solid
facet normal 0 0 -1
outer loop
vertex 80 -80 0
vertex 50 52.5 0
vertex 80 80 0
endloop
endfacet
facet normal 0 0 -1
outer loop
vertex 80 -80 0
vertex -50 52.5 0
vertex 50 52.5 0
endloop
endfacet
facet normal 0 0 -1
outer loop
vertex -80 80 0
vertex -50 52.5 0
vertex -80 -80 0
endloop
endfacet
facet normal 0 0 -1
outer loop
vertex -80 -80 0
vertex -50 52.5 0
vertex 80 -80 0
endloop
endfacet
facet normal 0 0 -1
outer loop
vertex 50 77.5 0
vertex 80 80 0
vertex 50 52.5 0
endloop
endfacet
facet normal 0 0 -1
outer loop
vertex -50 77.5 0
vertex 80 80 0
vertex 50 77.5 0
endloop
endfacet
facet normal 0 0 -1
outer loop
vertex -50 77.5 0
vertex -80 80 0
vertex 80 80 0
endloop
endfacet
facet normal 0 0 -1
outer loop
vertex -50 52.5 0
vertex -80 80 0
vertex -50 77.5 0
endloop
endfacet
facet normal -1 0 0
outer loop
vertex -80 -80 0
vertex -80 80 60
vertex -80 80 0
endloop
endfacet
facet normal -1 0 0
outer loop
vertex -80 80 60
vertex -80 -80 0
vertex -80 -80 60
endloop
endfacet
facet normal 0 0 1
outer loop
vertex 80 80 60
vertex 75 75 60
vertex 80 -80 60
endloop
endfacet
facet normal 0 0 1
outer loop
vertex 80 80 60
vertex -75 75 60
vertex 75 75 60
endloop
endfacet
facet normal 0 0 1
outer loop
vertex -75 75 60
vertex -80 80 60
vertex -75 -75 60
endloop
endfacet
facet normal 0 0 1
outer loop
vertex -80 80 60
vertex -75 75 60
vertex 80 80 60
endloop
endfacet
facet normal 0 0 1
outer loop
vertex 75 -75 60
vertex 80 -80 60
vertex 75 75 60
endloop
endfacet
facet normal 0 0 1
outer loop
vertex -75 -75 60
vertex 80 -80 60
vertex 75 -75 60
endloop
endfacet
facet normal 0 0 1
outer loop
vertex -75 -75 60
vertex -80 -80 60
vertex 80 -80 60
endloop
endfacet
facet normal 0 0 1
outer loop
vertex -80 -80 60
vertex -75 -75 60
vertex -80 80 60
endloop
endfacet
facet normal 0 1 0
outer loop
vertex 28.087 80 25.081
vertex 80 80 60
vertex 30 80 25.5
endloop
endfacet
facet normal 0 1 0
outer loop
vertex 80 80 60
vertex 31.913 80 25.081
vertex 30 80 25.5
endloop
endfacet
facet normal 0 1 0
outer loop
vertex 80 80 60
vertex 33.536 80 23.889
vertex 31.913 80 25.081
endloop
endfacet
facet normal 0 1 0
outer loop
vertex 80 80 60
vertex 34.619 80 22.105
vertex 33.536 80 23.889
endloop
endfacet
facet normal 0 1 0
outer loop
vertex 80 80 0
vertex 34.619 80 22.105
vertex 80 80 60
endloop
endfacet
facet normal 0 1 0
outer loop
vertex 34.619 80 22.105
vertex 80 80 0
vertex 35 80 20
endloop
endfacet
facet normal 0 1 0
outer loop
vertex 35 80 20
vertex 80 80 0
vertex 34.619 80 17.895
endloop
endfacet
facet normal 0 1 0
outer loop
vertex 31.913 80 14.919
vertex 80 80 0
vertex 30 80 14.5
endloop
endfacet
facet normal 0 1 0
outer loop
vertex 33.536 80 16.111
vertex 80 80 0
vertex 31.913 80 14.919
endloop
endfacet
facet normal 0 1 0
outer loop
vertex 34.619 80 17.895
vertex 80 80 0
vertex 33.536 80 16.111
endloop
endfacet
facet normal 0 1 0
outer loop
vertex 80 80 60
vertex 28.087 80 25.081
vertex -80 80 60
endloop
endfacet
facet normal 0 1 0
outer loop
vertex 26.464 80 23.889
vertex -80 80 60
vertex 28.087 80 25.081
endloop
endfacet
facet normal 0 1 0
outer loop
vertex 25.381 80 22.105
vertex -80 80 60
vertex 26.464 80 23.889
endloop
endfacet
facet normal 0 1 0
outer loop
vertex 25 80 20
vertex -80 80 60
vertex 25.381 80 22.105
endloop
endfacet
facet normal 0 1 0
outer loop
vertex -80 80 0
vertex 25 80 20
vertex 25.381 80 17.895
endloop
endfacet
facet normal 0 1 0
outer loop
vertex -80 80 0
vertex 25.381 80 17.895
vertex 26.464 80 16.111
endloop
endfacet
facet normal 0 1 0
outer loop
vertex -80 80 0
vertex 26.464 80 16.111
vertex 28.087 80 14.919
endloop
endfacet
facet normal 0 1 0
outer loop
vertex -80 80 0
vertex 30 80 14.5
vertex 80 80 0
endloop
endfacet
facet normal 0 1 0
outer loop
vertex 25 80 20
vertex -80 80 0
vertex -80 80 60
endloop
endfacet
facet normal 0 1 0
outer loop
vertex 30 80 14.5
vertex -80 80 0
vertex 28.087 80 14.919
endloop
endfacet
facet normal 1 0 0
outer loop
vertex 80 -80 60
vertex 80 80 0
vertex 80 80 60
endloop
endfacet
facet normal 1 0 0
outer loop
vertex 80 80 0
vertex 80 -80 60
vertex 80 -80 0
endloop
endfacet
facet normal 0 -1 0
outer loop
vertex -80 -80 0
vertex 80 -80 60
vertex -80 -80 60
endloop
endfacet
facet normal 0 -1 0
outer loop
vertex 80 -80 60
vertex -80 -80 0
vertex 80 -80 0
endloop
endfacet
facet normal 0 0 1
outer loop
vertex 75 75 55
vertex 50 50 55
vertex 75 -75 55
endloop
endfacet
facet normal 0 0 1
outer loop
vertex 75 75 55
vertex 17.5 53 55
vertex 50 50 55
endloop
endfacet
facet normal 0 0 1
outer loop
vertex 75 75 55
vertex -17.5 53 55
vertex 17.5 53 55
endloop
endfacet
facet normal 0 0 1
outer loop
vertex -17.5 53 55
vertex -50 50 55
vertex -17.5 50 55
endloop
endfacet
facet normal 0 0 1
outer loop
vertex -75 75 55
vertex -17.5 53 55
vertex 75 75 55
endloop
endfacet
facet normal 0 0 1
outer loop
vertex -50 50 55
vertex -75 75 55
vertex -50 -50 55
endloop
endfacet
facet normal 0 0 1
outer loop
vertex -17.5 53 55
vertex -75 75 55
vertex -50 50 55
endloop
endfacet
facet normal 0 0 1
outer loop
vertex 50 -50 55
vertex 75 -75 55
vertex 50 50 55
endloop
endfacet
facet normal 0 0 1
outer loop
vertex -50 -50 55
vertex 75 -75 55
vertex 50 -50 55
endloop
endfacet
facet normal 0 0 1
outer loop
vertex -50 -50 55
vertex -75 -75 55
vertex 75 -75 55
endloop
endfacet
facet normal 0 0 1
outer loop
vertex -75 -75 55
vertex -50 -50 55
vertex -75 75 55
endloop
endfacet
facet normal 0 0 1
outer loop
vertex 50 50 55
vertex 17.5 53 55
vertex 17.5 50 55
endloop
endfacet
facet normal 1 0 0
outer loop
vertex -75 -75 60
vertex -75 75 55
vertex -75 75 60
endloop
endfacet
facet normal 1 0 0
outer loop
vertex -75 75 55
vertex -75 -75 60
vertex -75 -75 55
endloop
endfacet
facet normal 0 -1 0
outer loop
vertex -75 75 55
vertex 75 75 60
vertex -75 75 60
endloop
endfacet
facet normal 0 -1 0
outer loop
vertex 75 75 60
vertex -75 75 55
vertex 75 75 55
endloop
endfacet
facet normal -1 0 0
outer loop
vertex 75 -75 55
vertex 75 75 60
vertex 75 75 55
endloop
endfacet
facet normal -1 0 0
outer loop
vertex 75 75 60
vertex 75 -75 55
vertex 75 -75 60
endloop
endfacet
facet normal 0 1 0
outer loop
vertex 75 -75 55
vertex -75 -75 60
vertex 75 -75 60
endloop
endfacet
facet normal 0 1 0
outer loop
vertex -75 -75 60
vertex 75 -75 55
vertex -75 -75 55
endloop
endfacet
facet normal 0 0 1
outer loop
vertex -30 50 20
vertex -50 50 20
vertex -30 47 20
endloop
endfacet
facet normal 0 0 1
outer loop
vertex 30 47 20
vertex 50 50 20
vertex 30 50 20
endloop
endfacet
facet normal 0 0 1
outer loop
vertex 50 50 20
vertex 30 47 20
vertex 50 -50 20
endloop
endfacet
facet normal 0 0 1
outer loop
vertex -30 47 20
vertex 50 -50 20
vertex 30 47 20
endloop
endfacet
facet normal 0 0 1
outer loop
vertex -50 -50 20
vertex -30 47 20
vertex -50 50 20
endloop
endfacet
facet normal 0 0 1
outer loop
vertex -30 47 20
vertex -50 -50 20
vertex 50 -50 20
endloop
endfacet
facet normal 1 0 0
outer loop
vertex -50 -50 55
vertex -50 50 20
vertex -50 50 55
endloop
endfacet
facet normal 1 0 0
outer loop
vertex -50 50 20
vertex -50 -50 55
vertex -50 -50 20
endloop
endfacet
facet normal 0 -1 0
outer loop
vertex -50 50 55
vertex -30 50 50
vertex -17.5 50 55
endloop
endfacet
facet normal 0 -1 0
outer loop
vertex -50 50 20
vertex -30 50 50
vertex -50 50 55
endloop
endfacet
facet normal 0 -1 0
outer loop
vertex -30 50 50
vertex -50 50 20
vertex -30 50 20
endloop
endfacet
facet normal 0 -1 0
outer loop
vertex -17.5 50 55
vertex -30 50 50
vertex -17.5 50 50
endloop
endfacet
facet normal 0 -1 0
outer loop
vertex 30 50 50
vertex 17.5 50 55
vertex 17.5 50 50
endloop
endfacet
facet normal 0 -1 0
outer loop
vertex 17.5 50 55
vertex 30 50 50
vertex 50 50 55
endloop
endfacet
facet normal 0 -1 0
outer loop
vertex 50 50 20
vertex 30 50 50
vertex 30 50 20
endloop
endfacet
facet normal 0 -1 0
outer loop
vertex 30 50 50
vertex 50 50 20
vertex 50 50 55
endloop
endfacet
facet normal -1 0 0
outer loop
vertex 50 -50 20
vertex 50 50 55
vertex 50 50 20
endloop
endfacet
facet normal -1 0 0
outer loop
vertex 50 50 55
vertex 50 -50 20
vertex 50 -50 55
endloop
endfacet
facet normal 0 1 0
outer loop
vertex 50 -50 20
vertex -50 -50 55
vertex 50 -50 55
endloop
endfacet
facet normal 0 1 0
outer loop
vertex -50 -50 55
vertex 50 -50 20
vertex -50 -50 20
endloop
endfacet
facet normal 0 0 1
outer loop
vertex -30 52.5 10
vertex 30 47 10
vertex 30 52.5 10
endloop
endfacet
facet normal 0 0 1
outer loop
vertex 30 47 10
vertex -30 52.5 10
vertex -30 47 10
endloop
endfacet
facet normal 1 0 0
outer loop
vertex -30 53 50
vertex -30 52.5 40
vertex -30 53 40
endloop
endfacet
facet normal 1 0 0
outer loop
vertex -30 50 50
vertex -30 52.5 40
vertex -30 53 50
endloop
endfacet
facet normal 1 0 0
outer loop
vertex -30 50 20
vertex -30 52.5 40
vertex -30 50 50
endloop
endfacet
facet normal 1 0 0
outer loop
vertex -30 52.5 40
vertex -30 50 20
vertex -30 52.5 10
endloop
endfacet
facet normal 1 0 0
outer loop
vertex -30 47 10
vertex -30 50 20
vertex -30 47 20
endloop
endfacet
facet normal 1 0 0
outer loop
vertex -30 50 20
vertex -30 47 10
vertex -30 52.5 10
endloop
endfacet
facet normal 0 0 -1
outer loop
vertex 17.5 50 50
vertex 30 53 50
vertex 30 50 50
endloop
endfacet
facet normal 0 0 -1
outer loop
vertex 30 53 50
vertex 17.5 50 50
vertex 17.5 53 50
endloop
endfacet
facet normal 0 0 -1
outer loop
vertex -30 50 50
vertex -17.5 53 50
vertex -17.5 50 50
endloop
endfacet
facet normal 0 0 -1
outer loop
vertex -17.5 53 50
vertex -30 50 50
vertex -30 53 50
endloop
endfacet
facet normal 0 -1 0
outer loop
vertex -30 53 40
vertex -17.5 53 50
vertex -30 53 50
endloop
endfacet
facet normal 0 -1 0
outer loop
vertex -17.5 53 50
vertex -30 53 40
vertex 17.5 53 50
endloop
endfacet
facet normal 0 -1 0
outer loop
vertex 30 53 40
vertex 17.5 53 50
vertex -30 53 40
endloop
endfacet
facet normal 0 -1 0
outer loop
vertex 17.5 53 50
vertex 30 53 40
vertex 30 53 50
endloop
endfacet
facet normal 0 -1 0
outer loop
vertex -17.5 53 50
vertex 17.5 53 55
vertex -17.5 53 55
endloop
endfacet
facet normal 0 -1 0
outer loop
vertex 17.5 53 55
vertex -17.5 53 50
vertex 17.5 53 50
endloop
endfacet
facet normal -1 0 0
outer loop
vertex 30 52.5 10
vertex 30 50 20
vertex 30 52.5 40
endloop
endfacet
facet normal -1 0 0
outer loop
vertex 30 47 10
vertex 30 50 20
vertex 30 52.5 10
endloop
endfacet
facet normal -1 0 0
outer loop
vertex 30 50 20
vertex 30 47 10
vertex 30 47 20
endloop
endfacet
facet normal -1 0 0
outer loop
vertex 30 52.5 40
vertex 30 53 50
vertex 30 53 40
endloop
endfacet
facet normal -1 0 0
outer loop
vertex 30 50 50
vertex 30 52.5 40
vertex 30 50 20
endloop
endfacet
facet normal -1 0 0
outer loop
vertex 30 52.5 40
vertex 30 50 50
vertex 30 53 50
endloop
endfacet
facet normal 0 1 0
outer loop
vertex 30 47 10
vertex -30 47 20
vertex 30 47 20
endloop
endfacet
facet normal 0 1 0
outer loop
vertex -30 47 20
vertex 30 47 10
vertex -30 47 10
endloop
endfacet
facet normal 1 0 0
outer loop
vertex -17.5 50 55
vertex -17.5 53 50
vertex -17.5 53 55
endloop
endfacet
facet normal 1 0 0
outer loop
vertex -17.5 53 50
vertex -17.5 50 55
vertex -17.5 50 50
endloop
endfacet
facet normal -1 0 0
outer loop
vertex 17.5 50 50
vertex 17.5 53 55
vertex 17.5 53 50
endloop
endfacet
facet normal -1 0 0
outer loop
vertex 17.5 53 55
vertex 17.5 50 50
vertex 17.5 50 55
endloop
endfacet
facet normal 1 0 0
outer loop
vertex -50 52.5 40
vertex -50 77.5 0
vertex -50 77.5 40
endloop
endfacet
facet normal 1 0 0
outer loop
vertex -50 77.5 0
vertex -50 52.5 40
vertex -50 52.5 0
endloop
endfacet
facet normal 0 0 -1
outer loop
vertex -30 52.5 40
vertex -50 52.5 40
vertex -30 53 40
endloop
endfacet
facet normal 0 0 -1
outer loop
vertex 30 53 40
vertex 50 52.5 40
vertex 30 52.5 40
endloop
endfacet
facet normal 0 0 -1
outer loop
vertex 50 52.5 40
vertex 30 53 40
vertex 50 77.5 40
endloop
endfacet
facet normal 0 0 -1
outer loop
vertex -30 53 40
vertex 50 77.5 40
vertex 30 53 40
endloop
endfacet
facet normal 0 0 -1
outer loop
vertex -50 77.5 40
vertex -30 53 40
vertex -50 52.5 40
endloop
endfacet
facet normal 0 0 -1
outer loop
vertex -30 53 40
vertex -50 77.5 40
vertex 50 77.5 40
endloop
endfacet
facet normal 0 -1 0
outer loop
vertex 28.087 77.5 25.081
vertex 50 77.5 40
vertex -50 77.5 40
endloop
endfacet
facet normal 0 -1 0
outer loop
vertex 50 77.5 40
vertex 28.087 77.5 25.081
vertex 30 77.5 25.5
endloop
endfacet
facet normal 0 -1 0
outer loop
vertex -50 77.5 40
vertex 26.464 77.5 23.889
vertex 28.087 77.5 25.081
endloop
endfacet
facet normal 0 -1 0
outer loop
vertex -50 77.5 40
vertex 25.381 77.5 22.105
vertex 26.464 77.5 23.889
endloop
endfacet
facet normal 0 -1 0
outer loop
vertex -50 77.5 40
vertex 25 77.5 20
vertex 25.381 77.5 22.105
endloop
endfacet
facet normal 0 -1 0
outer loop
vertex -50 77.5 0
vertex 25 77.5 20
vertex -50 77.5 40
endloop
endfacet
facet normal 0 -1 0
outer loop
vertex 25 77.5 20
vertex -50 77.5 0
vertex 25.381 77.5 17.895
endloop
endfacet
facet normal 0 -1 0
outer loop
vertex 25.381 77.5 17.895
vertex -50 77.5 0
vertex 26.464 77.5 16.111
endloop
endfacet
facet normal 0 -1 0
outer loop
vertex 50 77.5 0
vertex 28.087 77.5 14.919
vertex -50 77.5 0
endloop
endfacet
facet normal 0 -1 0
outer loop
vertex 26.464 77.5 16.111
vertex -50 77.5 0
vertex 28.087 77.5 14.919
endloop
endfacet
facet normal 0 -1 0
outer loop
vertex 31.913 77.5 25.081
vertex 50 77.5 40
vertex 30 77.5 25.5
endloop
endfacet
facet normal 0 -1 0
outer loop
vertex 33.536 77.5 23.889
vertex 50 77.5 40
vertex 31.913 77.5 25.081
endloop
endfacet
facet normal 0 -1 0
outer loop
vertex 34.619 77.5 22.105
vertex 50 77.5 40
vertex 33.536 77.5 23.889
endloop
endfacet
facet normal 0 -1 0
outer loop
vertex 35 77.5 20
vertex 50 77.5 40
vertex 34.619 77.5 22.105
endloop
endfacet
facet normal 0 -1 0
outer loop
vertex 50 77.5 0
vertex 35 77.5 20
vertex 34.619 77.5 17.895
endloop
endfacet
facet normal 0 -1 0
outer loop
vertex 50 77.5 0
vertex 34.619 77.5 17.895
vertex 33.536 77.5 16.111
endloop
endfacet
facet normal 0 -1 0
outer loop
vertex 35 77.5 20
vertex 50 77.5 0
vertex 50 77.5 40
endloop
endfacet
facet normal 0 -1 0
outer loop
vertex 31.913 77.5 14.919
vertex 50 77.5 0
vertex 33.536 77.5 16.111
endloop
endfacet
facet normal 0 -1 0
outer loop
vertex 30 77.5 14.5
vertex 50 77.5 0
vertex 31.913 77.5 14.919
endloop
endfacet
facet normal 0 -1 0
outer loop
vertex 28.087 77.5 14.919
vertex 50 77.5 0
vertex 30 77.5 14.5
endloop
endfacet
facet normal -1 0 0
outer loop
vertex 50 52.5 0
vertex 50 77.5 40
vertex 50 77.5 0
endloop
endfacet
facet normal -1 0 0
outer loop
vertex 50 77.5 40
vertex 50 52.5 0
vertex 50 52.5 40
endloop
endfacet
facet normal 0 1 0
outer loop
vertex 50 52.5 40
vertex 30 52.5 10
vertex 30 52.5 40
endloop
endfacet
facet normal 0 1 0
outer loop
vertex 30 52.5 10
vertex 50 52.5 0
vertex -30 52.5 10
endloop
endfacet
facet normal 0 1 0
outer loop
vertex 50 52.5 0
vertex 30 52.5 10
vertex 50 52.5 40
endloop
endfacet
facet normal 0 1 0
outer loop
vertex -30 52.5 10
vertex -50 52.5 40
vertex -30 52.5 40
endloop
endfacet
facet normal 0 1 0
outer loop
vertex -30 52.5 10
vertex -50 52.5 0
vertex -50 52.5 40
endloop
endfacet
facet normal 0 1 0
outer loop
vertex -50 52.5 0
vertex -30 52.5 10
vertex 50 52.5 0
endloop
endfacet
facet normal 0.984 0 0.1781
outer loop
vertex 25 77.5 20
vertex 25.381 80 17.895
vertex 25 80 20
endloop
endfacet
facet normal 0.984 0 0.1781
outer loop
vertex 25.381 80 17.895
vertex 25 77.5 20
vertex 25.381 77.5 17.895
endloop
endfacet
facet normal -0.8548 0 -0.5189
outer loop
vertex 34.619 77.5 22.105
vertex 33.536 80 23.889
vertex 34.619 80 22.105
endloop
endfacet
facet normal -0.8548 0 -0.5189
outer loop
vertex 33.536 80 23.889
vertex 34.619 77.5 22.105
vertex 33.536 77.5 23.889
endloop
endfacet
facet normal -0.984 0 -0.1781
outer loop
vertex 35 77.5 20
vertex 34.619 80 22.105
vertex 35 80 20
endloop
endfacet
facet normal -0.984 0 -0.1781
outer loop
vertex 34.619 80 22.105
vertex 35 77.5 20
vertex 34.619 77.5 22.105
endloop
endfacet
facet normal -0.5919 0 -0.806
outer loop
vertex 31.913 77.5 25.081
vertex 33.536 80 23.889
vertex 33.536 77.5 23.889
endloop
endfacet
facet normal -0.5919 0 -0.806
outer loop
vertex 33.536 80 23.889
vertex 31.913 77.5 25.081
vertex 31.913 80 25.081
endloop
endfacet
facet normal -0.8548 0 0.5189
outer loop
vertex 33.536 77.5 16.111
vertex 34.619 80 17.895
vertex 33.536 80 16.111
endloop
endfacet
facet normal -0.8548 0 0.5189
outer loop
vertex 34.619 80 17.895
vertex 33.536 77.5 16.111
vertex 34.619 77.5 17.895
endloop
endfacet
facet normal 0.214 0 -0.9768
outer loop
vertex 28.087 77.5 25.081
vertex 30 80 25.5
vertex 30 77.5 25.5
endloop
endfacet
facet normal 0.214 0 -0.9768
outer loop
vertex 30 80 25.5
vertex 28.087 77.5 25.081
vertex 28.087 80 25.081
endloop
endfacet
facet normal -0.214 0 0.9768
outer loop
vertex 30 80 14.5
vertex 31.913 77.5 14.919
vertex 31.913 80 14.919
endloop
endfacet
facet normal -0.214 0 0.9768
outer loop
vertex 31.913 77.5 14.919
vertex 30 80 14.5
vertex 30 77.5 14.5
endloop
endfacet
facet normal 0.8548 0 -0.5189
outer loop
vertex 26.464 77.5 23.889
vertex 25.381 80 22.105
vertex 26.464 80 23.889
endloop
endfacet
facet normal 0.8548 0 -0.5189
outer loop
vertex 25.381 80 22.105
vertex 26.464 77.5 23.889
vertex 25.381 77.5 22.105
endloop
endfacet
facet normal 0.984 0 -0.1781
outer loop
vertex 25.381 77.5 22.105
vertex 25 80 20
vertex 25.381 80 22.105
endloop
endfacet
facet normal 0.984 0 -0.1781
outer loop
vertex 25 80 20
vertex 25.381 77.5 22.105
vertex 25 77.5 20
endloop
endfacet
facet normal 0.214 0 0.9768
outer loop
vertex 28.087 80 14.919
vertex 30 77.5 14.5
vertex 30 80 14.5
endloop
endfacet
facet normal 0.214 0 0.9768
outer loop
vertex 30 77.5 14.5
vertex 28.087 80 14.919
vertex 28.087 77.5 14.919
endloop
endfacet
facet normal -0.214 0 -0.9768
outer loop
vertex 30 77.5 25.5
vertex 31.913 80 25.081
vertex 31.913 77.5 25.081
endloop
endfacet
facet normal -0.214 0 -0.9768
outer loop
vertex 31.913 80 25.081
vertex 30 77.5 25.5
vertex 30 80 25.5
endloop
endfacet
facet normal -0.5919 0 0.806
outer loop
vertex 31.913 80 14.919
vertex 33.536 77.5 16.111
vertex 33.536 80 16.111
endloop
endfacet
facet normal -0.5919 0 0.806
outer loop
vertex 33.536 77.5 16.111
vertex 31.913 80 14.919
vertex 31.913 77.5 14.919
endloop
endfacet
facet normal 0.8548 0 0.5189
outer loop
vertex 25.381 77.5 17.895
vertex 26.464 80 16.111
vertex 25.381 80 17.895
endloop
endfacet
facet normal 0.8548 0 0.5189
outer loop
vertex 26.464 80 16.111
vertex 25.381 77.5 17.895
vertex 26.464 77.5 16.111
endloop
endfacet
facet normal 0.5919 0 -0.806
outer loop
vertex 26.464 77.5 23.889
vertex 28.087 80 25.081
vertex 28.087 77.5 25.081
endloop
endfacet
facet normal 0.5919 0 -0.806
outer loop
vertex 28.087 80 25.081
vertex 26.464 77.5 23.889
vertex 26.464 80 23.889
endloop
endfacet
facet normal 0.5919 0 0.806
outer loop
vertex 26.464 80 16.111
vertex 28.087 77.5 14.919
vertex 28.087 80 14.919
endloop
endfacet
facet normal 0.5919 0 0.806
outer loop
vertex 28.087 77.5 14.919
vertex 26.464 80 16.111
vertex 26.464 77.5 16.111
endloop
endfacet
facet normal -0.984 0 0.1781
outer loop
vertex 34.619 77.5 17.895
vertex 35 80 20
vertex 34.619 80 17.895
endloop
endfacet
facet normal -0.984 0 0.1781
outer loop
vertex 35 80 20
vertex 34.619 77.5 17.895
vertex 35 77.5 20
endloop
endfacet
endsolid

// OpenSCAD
h = 60;

difference() {
    linear_extrude(height = h)
        square([160, 160], center = true);
    translate([0,0,h-5])
        linear_extrude(height = 5)
            square([150, 150], center = true);
    translate([0,0,h-40])
        linear_extrude(height = 40)
            square([100, 100], center = true);
    translate([0,50,10])
        linear_extrude(height = h-20)
            square([60,6], center = true);
    translate([0,50,h-20])
        linear_extrude(height = 20)
            square([35,6], center = true);
    translate([0,65])
        linear_extrude(height = h-20)
            square([100,25], center = true);
    translate([30,80,h/2-10])
        resize([10,5,11])
        rotate([90,0,0])
            cylinder(h = 5, r = 5, center = true);
}
